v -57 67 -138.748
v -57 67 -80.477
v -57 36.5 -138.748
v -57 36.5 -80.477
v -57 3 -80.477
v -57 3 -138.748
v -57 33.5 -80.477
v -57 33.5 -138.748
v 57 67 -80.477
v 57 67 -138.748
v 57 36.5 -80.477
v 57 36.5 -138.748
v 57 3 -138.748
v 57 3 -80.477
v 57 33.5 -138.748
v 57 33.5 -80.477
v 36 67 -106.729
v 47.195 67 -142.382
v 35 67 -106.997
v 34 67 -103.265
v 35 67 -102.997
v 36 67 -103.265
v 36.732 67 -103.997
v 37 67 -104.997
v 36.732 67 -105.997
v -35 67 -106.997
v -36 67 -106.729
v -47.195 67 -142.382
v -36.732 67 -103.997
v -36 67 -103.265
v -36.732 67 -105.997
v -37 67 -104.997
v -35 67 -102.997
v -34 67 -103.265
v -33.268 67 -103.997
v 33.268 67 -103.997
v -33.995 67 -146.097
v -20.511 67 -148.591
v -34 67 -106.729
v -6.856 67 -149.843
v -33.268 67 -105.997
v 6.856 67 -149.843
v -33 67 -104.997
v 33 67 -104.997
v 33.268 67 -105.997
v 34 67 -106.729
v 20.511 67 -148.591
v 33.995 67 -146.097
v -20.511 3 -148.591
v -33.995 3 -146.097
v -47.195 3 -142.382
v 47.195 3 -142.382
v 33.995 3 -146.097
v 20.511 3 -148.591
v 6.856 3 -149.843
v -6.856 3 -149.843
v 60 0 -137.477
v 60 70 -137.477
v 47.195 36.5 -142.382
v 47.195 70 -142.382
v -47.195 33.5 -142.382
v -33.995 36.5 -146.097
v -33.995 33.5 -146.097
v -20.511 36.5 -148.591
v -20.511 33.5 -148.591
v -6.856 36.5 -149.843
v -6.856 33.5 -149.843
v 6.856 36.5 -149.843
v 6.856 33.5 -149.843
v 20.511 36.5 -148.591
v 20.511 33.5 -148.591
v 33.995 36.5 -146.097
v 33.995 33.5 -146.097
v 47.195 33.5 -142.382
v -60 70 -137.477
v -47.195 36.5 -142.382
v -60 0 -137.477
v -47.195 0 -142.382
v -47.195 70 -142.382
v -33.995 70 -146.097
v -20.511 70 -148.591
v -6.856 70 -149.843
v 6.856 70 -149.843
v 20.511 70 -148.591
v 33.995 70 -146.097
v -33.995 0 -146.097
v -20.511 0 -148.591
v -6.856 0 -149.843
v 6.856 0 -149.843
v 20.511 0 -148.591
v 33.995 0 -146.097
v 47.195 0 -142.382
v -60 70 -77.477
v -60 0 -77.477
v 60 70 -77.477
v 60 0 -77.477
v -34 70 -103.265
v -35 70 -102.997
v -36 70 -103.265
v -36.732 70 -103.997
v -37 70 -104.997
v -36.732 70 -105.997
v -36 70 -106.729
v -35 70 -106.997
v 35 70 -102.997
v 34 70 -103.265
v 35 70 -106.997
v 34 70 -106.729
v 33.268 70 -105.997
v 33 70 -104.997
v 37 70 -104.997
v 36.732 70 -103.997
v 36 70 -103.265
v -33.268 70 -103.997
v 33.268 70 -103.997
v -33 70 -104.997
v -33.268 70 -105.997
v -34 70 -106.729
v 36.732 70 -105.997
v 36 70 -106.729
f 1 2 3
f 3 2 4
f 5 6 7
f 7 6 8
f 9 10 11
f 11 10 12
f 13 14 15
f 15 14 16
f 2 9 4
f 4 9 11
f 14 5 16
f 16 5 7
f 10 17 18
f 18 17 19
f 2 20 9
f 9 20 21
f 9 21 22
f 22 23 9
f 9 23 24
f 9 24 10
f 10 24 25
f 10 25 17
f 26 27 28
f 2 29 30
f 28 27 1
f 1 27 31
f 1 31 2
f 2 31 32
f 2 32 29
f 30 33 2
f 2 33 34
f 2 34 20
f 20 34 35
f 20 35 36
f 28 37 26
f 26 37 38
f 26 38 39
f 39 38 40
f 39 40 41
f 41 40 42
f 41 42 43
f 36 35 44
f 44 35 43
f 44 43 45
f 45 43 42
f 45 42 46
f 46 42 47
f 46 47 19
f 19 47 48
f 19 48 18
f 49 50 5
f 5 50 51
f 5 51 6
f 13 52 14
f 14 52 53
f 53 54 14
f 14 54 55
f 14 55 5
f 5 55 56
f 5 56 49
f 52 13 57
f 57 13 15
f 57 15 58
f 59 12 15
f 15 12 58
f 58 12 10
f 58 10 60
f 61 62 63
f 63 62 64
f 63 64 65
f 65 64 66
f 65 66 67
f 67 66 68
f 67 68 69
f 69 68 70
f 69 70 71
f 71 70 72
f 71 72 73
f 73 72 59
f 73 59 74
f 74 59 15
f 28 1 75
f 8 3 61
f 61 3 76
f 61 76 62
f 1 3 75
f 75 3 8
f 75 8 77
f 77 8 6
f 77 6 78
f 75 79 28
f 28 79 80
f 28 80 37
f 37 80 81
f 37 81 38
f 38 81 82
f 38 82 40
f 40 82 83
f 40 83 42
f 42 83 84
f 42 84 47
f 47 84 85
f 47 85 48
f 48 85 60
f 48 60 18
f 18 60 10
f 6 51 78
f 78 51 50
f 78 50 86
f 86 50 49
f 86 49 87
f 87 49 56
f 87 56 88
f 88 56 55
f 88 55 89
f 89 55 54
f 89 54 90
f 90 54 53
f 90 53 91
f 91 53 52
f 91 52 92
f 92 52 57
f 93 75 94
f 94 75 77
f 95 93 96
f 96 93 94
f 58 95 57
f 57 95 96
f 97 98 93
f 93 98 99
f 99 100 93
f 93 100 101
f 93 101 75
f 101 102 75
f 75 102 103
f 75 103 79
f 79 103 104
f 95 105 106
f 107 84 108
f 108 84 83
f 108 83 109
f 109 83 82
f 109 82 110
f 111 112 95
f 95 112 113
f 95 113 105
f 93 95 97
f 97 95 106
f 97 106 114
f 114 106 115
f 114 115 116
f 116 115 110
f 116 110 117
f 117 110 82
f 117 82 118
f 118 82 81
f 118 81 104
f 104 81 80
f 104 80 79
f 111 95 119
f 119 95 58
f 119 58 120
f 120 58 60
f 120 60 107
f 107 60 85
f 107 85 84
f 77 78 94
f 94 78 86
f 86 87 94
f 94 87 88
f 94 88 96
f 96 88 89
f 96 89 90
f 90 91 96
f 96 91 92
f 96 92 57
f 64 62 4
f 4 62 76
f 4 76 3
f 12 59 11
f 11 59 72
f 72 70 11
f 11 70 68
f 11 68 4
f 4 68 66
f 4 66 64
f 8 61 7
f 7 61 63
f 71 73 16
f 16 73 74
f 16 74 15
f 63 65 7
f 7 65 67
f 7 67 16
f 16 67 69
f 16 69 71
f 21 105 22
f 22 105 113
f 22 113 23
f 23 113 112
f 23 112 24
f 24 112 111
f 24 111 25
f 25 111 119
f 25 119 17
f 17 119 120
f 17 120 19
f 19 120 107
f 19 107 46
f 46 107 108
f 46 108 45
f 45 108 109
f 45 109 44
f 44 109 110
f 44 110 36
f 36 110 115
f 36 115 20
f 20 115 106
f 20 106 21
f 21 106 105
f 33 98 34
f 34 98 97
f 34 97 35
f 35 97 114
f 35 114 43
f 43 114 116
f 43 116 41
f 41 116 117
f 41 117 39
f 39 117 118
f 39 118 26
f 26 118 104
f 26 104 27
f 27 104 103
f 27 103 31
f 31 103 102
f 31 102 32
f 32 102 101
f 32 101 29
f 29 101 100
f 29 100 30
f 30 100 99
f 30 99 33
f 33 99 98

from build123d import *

# Parameters (mm, degrees)
BOSS_EXTRUDE1_DEPTH      = 70
SKETCH7_W                = 114
SKETCH7_H                = 64
CUT_EXTRUDE2_DEPTH       = 77
SKETCH8_W                = 3
SKETCH8_H                = 64
BOSS_EXTRUDE3_DEPTH      = 114
BOSS_EXTRUDE4_REACH      = 117.47
BOSS_EXTRUDE4_END_RADIUS = 150
SKETCH9_W                = 114
SKETCH9_H                = 3
SKETCH10_R               = 2
CUT_EXTRUDE3_DEPTH       = 3


with BuildPart() as part:
    # Sketch1 → Boss-Extrude1 (new body)
    with BuildSketch(Plane(origin=(0, 0, 0), x_dir=(1, 0, 0), z_dir=(0, 1, 0))):
        with BuildLine():
            Line((-60, 137.477270849), (-60, 77.477270849))
            Line((-60, 77.477270849), (60, 77.477270849))
            Line((60, 77.477270849), (60, 137.477270849))
            ThreePointArc((60, 137.477270849), (0, 150), (-60, 137.477270849))
        make_face()
    extrude(amount=BOSS_EXTRUDE1_DEPTH)

    # Sketch7 → Cut-Extrude2 (cut)
    with BuildSketch(Plane.XY.offset(-77.477270849)):
        with Locations((0, 35)):
            Rectangle(SKETCH7_W, SKETCH7_H)
    extrude(amount=-CUT_EXTRUDE2_DEPTH, mode=Mode.SUBTRACT)

    # Sketch8 → Boss-Extrude3 (add)
    with BuildSketch(Plane(origin=(-57, 0, 0), x_dir=(0, 0, -1), z_dir=(1, 0, 0))):
        with Locations((78.977270849, 35)):
            Rectangle(SKETCH8_W, SKETCH8_H)
    extrude(amount=BOSS_EXTRUDE3_DEPTH)

    # Boss-Extrude4: up to this cylinder (the profile starts inside it)
    boss_extrude4_end = Plane(origin=(0, 35, 0), z_dir=(0, -1, 0)) * Cylinder(BOSS_EXTRUDE4_END_RADIUS, 535.94, mode=Mode.PRIVATE)
    # Sketch9 → Boss-Extrude4 (add, up to the surface)
    with BuildSketch(Plane(origin=(0, 0, -80.477270849), x_dir=(-1, 0, 0), z_dir=(0, 0, -1)), mode=Mode.PRIVATE) as boss_extrude4_sk1:
        with Locations((0, 35)):
            Rectangle(SKETCH9_W, SKETCH9_H)
    boss_extrude4_tool1 = extrude(boss_extrude4_sk1.sketch, amount=BOSS_EXTRUDE4_REACH, mode=Mode.PRIVATE) & boss_extrude4_end
    add(boss_extrude4_tool1.solids().sort_by_distance((0, 35, -80.477271))[0])

    # Sketch10 → Cut-Extrude3 (cut)
    with BuildSketch(Plane(origin=(0, 70, 0), x_dir=(1, 0, 0), z_dir=(0, 1, 0))):
        with Locations(Location((-35, 104.997270849, 0), (0, 0, 270))):
            Circle(SKETCH10_R)
        with Locations(Location((35, 104.997270849, 0), (0, 0, 270))):
            Circle(SKETCH10_R)
    extrude(amount=-CUT_EXTRUDE3_DEPTH, mode=Mode.SUBTRACT)


solid = part.part
